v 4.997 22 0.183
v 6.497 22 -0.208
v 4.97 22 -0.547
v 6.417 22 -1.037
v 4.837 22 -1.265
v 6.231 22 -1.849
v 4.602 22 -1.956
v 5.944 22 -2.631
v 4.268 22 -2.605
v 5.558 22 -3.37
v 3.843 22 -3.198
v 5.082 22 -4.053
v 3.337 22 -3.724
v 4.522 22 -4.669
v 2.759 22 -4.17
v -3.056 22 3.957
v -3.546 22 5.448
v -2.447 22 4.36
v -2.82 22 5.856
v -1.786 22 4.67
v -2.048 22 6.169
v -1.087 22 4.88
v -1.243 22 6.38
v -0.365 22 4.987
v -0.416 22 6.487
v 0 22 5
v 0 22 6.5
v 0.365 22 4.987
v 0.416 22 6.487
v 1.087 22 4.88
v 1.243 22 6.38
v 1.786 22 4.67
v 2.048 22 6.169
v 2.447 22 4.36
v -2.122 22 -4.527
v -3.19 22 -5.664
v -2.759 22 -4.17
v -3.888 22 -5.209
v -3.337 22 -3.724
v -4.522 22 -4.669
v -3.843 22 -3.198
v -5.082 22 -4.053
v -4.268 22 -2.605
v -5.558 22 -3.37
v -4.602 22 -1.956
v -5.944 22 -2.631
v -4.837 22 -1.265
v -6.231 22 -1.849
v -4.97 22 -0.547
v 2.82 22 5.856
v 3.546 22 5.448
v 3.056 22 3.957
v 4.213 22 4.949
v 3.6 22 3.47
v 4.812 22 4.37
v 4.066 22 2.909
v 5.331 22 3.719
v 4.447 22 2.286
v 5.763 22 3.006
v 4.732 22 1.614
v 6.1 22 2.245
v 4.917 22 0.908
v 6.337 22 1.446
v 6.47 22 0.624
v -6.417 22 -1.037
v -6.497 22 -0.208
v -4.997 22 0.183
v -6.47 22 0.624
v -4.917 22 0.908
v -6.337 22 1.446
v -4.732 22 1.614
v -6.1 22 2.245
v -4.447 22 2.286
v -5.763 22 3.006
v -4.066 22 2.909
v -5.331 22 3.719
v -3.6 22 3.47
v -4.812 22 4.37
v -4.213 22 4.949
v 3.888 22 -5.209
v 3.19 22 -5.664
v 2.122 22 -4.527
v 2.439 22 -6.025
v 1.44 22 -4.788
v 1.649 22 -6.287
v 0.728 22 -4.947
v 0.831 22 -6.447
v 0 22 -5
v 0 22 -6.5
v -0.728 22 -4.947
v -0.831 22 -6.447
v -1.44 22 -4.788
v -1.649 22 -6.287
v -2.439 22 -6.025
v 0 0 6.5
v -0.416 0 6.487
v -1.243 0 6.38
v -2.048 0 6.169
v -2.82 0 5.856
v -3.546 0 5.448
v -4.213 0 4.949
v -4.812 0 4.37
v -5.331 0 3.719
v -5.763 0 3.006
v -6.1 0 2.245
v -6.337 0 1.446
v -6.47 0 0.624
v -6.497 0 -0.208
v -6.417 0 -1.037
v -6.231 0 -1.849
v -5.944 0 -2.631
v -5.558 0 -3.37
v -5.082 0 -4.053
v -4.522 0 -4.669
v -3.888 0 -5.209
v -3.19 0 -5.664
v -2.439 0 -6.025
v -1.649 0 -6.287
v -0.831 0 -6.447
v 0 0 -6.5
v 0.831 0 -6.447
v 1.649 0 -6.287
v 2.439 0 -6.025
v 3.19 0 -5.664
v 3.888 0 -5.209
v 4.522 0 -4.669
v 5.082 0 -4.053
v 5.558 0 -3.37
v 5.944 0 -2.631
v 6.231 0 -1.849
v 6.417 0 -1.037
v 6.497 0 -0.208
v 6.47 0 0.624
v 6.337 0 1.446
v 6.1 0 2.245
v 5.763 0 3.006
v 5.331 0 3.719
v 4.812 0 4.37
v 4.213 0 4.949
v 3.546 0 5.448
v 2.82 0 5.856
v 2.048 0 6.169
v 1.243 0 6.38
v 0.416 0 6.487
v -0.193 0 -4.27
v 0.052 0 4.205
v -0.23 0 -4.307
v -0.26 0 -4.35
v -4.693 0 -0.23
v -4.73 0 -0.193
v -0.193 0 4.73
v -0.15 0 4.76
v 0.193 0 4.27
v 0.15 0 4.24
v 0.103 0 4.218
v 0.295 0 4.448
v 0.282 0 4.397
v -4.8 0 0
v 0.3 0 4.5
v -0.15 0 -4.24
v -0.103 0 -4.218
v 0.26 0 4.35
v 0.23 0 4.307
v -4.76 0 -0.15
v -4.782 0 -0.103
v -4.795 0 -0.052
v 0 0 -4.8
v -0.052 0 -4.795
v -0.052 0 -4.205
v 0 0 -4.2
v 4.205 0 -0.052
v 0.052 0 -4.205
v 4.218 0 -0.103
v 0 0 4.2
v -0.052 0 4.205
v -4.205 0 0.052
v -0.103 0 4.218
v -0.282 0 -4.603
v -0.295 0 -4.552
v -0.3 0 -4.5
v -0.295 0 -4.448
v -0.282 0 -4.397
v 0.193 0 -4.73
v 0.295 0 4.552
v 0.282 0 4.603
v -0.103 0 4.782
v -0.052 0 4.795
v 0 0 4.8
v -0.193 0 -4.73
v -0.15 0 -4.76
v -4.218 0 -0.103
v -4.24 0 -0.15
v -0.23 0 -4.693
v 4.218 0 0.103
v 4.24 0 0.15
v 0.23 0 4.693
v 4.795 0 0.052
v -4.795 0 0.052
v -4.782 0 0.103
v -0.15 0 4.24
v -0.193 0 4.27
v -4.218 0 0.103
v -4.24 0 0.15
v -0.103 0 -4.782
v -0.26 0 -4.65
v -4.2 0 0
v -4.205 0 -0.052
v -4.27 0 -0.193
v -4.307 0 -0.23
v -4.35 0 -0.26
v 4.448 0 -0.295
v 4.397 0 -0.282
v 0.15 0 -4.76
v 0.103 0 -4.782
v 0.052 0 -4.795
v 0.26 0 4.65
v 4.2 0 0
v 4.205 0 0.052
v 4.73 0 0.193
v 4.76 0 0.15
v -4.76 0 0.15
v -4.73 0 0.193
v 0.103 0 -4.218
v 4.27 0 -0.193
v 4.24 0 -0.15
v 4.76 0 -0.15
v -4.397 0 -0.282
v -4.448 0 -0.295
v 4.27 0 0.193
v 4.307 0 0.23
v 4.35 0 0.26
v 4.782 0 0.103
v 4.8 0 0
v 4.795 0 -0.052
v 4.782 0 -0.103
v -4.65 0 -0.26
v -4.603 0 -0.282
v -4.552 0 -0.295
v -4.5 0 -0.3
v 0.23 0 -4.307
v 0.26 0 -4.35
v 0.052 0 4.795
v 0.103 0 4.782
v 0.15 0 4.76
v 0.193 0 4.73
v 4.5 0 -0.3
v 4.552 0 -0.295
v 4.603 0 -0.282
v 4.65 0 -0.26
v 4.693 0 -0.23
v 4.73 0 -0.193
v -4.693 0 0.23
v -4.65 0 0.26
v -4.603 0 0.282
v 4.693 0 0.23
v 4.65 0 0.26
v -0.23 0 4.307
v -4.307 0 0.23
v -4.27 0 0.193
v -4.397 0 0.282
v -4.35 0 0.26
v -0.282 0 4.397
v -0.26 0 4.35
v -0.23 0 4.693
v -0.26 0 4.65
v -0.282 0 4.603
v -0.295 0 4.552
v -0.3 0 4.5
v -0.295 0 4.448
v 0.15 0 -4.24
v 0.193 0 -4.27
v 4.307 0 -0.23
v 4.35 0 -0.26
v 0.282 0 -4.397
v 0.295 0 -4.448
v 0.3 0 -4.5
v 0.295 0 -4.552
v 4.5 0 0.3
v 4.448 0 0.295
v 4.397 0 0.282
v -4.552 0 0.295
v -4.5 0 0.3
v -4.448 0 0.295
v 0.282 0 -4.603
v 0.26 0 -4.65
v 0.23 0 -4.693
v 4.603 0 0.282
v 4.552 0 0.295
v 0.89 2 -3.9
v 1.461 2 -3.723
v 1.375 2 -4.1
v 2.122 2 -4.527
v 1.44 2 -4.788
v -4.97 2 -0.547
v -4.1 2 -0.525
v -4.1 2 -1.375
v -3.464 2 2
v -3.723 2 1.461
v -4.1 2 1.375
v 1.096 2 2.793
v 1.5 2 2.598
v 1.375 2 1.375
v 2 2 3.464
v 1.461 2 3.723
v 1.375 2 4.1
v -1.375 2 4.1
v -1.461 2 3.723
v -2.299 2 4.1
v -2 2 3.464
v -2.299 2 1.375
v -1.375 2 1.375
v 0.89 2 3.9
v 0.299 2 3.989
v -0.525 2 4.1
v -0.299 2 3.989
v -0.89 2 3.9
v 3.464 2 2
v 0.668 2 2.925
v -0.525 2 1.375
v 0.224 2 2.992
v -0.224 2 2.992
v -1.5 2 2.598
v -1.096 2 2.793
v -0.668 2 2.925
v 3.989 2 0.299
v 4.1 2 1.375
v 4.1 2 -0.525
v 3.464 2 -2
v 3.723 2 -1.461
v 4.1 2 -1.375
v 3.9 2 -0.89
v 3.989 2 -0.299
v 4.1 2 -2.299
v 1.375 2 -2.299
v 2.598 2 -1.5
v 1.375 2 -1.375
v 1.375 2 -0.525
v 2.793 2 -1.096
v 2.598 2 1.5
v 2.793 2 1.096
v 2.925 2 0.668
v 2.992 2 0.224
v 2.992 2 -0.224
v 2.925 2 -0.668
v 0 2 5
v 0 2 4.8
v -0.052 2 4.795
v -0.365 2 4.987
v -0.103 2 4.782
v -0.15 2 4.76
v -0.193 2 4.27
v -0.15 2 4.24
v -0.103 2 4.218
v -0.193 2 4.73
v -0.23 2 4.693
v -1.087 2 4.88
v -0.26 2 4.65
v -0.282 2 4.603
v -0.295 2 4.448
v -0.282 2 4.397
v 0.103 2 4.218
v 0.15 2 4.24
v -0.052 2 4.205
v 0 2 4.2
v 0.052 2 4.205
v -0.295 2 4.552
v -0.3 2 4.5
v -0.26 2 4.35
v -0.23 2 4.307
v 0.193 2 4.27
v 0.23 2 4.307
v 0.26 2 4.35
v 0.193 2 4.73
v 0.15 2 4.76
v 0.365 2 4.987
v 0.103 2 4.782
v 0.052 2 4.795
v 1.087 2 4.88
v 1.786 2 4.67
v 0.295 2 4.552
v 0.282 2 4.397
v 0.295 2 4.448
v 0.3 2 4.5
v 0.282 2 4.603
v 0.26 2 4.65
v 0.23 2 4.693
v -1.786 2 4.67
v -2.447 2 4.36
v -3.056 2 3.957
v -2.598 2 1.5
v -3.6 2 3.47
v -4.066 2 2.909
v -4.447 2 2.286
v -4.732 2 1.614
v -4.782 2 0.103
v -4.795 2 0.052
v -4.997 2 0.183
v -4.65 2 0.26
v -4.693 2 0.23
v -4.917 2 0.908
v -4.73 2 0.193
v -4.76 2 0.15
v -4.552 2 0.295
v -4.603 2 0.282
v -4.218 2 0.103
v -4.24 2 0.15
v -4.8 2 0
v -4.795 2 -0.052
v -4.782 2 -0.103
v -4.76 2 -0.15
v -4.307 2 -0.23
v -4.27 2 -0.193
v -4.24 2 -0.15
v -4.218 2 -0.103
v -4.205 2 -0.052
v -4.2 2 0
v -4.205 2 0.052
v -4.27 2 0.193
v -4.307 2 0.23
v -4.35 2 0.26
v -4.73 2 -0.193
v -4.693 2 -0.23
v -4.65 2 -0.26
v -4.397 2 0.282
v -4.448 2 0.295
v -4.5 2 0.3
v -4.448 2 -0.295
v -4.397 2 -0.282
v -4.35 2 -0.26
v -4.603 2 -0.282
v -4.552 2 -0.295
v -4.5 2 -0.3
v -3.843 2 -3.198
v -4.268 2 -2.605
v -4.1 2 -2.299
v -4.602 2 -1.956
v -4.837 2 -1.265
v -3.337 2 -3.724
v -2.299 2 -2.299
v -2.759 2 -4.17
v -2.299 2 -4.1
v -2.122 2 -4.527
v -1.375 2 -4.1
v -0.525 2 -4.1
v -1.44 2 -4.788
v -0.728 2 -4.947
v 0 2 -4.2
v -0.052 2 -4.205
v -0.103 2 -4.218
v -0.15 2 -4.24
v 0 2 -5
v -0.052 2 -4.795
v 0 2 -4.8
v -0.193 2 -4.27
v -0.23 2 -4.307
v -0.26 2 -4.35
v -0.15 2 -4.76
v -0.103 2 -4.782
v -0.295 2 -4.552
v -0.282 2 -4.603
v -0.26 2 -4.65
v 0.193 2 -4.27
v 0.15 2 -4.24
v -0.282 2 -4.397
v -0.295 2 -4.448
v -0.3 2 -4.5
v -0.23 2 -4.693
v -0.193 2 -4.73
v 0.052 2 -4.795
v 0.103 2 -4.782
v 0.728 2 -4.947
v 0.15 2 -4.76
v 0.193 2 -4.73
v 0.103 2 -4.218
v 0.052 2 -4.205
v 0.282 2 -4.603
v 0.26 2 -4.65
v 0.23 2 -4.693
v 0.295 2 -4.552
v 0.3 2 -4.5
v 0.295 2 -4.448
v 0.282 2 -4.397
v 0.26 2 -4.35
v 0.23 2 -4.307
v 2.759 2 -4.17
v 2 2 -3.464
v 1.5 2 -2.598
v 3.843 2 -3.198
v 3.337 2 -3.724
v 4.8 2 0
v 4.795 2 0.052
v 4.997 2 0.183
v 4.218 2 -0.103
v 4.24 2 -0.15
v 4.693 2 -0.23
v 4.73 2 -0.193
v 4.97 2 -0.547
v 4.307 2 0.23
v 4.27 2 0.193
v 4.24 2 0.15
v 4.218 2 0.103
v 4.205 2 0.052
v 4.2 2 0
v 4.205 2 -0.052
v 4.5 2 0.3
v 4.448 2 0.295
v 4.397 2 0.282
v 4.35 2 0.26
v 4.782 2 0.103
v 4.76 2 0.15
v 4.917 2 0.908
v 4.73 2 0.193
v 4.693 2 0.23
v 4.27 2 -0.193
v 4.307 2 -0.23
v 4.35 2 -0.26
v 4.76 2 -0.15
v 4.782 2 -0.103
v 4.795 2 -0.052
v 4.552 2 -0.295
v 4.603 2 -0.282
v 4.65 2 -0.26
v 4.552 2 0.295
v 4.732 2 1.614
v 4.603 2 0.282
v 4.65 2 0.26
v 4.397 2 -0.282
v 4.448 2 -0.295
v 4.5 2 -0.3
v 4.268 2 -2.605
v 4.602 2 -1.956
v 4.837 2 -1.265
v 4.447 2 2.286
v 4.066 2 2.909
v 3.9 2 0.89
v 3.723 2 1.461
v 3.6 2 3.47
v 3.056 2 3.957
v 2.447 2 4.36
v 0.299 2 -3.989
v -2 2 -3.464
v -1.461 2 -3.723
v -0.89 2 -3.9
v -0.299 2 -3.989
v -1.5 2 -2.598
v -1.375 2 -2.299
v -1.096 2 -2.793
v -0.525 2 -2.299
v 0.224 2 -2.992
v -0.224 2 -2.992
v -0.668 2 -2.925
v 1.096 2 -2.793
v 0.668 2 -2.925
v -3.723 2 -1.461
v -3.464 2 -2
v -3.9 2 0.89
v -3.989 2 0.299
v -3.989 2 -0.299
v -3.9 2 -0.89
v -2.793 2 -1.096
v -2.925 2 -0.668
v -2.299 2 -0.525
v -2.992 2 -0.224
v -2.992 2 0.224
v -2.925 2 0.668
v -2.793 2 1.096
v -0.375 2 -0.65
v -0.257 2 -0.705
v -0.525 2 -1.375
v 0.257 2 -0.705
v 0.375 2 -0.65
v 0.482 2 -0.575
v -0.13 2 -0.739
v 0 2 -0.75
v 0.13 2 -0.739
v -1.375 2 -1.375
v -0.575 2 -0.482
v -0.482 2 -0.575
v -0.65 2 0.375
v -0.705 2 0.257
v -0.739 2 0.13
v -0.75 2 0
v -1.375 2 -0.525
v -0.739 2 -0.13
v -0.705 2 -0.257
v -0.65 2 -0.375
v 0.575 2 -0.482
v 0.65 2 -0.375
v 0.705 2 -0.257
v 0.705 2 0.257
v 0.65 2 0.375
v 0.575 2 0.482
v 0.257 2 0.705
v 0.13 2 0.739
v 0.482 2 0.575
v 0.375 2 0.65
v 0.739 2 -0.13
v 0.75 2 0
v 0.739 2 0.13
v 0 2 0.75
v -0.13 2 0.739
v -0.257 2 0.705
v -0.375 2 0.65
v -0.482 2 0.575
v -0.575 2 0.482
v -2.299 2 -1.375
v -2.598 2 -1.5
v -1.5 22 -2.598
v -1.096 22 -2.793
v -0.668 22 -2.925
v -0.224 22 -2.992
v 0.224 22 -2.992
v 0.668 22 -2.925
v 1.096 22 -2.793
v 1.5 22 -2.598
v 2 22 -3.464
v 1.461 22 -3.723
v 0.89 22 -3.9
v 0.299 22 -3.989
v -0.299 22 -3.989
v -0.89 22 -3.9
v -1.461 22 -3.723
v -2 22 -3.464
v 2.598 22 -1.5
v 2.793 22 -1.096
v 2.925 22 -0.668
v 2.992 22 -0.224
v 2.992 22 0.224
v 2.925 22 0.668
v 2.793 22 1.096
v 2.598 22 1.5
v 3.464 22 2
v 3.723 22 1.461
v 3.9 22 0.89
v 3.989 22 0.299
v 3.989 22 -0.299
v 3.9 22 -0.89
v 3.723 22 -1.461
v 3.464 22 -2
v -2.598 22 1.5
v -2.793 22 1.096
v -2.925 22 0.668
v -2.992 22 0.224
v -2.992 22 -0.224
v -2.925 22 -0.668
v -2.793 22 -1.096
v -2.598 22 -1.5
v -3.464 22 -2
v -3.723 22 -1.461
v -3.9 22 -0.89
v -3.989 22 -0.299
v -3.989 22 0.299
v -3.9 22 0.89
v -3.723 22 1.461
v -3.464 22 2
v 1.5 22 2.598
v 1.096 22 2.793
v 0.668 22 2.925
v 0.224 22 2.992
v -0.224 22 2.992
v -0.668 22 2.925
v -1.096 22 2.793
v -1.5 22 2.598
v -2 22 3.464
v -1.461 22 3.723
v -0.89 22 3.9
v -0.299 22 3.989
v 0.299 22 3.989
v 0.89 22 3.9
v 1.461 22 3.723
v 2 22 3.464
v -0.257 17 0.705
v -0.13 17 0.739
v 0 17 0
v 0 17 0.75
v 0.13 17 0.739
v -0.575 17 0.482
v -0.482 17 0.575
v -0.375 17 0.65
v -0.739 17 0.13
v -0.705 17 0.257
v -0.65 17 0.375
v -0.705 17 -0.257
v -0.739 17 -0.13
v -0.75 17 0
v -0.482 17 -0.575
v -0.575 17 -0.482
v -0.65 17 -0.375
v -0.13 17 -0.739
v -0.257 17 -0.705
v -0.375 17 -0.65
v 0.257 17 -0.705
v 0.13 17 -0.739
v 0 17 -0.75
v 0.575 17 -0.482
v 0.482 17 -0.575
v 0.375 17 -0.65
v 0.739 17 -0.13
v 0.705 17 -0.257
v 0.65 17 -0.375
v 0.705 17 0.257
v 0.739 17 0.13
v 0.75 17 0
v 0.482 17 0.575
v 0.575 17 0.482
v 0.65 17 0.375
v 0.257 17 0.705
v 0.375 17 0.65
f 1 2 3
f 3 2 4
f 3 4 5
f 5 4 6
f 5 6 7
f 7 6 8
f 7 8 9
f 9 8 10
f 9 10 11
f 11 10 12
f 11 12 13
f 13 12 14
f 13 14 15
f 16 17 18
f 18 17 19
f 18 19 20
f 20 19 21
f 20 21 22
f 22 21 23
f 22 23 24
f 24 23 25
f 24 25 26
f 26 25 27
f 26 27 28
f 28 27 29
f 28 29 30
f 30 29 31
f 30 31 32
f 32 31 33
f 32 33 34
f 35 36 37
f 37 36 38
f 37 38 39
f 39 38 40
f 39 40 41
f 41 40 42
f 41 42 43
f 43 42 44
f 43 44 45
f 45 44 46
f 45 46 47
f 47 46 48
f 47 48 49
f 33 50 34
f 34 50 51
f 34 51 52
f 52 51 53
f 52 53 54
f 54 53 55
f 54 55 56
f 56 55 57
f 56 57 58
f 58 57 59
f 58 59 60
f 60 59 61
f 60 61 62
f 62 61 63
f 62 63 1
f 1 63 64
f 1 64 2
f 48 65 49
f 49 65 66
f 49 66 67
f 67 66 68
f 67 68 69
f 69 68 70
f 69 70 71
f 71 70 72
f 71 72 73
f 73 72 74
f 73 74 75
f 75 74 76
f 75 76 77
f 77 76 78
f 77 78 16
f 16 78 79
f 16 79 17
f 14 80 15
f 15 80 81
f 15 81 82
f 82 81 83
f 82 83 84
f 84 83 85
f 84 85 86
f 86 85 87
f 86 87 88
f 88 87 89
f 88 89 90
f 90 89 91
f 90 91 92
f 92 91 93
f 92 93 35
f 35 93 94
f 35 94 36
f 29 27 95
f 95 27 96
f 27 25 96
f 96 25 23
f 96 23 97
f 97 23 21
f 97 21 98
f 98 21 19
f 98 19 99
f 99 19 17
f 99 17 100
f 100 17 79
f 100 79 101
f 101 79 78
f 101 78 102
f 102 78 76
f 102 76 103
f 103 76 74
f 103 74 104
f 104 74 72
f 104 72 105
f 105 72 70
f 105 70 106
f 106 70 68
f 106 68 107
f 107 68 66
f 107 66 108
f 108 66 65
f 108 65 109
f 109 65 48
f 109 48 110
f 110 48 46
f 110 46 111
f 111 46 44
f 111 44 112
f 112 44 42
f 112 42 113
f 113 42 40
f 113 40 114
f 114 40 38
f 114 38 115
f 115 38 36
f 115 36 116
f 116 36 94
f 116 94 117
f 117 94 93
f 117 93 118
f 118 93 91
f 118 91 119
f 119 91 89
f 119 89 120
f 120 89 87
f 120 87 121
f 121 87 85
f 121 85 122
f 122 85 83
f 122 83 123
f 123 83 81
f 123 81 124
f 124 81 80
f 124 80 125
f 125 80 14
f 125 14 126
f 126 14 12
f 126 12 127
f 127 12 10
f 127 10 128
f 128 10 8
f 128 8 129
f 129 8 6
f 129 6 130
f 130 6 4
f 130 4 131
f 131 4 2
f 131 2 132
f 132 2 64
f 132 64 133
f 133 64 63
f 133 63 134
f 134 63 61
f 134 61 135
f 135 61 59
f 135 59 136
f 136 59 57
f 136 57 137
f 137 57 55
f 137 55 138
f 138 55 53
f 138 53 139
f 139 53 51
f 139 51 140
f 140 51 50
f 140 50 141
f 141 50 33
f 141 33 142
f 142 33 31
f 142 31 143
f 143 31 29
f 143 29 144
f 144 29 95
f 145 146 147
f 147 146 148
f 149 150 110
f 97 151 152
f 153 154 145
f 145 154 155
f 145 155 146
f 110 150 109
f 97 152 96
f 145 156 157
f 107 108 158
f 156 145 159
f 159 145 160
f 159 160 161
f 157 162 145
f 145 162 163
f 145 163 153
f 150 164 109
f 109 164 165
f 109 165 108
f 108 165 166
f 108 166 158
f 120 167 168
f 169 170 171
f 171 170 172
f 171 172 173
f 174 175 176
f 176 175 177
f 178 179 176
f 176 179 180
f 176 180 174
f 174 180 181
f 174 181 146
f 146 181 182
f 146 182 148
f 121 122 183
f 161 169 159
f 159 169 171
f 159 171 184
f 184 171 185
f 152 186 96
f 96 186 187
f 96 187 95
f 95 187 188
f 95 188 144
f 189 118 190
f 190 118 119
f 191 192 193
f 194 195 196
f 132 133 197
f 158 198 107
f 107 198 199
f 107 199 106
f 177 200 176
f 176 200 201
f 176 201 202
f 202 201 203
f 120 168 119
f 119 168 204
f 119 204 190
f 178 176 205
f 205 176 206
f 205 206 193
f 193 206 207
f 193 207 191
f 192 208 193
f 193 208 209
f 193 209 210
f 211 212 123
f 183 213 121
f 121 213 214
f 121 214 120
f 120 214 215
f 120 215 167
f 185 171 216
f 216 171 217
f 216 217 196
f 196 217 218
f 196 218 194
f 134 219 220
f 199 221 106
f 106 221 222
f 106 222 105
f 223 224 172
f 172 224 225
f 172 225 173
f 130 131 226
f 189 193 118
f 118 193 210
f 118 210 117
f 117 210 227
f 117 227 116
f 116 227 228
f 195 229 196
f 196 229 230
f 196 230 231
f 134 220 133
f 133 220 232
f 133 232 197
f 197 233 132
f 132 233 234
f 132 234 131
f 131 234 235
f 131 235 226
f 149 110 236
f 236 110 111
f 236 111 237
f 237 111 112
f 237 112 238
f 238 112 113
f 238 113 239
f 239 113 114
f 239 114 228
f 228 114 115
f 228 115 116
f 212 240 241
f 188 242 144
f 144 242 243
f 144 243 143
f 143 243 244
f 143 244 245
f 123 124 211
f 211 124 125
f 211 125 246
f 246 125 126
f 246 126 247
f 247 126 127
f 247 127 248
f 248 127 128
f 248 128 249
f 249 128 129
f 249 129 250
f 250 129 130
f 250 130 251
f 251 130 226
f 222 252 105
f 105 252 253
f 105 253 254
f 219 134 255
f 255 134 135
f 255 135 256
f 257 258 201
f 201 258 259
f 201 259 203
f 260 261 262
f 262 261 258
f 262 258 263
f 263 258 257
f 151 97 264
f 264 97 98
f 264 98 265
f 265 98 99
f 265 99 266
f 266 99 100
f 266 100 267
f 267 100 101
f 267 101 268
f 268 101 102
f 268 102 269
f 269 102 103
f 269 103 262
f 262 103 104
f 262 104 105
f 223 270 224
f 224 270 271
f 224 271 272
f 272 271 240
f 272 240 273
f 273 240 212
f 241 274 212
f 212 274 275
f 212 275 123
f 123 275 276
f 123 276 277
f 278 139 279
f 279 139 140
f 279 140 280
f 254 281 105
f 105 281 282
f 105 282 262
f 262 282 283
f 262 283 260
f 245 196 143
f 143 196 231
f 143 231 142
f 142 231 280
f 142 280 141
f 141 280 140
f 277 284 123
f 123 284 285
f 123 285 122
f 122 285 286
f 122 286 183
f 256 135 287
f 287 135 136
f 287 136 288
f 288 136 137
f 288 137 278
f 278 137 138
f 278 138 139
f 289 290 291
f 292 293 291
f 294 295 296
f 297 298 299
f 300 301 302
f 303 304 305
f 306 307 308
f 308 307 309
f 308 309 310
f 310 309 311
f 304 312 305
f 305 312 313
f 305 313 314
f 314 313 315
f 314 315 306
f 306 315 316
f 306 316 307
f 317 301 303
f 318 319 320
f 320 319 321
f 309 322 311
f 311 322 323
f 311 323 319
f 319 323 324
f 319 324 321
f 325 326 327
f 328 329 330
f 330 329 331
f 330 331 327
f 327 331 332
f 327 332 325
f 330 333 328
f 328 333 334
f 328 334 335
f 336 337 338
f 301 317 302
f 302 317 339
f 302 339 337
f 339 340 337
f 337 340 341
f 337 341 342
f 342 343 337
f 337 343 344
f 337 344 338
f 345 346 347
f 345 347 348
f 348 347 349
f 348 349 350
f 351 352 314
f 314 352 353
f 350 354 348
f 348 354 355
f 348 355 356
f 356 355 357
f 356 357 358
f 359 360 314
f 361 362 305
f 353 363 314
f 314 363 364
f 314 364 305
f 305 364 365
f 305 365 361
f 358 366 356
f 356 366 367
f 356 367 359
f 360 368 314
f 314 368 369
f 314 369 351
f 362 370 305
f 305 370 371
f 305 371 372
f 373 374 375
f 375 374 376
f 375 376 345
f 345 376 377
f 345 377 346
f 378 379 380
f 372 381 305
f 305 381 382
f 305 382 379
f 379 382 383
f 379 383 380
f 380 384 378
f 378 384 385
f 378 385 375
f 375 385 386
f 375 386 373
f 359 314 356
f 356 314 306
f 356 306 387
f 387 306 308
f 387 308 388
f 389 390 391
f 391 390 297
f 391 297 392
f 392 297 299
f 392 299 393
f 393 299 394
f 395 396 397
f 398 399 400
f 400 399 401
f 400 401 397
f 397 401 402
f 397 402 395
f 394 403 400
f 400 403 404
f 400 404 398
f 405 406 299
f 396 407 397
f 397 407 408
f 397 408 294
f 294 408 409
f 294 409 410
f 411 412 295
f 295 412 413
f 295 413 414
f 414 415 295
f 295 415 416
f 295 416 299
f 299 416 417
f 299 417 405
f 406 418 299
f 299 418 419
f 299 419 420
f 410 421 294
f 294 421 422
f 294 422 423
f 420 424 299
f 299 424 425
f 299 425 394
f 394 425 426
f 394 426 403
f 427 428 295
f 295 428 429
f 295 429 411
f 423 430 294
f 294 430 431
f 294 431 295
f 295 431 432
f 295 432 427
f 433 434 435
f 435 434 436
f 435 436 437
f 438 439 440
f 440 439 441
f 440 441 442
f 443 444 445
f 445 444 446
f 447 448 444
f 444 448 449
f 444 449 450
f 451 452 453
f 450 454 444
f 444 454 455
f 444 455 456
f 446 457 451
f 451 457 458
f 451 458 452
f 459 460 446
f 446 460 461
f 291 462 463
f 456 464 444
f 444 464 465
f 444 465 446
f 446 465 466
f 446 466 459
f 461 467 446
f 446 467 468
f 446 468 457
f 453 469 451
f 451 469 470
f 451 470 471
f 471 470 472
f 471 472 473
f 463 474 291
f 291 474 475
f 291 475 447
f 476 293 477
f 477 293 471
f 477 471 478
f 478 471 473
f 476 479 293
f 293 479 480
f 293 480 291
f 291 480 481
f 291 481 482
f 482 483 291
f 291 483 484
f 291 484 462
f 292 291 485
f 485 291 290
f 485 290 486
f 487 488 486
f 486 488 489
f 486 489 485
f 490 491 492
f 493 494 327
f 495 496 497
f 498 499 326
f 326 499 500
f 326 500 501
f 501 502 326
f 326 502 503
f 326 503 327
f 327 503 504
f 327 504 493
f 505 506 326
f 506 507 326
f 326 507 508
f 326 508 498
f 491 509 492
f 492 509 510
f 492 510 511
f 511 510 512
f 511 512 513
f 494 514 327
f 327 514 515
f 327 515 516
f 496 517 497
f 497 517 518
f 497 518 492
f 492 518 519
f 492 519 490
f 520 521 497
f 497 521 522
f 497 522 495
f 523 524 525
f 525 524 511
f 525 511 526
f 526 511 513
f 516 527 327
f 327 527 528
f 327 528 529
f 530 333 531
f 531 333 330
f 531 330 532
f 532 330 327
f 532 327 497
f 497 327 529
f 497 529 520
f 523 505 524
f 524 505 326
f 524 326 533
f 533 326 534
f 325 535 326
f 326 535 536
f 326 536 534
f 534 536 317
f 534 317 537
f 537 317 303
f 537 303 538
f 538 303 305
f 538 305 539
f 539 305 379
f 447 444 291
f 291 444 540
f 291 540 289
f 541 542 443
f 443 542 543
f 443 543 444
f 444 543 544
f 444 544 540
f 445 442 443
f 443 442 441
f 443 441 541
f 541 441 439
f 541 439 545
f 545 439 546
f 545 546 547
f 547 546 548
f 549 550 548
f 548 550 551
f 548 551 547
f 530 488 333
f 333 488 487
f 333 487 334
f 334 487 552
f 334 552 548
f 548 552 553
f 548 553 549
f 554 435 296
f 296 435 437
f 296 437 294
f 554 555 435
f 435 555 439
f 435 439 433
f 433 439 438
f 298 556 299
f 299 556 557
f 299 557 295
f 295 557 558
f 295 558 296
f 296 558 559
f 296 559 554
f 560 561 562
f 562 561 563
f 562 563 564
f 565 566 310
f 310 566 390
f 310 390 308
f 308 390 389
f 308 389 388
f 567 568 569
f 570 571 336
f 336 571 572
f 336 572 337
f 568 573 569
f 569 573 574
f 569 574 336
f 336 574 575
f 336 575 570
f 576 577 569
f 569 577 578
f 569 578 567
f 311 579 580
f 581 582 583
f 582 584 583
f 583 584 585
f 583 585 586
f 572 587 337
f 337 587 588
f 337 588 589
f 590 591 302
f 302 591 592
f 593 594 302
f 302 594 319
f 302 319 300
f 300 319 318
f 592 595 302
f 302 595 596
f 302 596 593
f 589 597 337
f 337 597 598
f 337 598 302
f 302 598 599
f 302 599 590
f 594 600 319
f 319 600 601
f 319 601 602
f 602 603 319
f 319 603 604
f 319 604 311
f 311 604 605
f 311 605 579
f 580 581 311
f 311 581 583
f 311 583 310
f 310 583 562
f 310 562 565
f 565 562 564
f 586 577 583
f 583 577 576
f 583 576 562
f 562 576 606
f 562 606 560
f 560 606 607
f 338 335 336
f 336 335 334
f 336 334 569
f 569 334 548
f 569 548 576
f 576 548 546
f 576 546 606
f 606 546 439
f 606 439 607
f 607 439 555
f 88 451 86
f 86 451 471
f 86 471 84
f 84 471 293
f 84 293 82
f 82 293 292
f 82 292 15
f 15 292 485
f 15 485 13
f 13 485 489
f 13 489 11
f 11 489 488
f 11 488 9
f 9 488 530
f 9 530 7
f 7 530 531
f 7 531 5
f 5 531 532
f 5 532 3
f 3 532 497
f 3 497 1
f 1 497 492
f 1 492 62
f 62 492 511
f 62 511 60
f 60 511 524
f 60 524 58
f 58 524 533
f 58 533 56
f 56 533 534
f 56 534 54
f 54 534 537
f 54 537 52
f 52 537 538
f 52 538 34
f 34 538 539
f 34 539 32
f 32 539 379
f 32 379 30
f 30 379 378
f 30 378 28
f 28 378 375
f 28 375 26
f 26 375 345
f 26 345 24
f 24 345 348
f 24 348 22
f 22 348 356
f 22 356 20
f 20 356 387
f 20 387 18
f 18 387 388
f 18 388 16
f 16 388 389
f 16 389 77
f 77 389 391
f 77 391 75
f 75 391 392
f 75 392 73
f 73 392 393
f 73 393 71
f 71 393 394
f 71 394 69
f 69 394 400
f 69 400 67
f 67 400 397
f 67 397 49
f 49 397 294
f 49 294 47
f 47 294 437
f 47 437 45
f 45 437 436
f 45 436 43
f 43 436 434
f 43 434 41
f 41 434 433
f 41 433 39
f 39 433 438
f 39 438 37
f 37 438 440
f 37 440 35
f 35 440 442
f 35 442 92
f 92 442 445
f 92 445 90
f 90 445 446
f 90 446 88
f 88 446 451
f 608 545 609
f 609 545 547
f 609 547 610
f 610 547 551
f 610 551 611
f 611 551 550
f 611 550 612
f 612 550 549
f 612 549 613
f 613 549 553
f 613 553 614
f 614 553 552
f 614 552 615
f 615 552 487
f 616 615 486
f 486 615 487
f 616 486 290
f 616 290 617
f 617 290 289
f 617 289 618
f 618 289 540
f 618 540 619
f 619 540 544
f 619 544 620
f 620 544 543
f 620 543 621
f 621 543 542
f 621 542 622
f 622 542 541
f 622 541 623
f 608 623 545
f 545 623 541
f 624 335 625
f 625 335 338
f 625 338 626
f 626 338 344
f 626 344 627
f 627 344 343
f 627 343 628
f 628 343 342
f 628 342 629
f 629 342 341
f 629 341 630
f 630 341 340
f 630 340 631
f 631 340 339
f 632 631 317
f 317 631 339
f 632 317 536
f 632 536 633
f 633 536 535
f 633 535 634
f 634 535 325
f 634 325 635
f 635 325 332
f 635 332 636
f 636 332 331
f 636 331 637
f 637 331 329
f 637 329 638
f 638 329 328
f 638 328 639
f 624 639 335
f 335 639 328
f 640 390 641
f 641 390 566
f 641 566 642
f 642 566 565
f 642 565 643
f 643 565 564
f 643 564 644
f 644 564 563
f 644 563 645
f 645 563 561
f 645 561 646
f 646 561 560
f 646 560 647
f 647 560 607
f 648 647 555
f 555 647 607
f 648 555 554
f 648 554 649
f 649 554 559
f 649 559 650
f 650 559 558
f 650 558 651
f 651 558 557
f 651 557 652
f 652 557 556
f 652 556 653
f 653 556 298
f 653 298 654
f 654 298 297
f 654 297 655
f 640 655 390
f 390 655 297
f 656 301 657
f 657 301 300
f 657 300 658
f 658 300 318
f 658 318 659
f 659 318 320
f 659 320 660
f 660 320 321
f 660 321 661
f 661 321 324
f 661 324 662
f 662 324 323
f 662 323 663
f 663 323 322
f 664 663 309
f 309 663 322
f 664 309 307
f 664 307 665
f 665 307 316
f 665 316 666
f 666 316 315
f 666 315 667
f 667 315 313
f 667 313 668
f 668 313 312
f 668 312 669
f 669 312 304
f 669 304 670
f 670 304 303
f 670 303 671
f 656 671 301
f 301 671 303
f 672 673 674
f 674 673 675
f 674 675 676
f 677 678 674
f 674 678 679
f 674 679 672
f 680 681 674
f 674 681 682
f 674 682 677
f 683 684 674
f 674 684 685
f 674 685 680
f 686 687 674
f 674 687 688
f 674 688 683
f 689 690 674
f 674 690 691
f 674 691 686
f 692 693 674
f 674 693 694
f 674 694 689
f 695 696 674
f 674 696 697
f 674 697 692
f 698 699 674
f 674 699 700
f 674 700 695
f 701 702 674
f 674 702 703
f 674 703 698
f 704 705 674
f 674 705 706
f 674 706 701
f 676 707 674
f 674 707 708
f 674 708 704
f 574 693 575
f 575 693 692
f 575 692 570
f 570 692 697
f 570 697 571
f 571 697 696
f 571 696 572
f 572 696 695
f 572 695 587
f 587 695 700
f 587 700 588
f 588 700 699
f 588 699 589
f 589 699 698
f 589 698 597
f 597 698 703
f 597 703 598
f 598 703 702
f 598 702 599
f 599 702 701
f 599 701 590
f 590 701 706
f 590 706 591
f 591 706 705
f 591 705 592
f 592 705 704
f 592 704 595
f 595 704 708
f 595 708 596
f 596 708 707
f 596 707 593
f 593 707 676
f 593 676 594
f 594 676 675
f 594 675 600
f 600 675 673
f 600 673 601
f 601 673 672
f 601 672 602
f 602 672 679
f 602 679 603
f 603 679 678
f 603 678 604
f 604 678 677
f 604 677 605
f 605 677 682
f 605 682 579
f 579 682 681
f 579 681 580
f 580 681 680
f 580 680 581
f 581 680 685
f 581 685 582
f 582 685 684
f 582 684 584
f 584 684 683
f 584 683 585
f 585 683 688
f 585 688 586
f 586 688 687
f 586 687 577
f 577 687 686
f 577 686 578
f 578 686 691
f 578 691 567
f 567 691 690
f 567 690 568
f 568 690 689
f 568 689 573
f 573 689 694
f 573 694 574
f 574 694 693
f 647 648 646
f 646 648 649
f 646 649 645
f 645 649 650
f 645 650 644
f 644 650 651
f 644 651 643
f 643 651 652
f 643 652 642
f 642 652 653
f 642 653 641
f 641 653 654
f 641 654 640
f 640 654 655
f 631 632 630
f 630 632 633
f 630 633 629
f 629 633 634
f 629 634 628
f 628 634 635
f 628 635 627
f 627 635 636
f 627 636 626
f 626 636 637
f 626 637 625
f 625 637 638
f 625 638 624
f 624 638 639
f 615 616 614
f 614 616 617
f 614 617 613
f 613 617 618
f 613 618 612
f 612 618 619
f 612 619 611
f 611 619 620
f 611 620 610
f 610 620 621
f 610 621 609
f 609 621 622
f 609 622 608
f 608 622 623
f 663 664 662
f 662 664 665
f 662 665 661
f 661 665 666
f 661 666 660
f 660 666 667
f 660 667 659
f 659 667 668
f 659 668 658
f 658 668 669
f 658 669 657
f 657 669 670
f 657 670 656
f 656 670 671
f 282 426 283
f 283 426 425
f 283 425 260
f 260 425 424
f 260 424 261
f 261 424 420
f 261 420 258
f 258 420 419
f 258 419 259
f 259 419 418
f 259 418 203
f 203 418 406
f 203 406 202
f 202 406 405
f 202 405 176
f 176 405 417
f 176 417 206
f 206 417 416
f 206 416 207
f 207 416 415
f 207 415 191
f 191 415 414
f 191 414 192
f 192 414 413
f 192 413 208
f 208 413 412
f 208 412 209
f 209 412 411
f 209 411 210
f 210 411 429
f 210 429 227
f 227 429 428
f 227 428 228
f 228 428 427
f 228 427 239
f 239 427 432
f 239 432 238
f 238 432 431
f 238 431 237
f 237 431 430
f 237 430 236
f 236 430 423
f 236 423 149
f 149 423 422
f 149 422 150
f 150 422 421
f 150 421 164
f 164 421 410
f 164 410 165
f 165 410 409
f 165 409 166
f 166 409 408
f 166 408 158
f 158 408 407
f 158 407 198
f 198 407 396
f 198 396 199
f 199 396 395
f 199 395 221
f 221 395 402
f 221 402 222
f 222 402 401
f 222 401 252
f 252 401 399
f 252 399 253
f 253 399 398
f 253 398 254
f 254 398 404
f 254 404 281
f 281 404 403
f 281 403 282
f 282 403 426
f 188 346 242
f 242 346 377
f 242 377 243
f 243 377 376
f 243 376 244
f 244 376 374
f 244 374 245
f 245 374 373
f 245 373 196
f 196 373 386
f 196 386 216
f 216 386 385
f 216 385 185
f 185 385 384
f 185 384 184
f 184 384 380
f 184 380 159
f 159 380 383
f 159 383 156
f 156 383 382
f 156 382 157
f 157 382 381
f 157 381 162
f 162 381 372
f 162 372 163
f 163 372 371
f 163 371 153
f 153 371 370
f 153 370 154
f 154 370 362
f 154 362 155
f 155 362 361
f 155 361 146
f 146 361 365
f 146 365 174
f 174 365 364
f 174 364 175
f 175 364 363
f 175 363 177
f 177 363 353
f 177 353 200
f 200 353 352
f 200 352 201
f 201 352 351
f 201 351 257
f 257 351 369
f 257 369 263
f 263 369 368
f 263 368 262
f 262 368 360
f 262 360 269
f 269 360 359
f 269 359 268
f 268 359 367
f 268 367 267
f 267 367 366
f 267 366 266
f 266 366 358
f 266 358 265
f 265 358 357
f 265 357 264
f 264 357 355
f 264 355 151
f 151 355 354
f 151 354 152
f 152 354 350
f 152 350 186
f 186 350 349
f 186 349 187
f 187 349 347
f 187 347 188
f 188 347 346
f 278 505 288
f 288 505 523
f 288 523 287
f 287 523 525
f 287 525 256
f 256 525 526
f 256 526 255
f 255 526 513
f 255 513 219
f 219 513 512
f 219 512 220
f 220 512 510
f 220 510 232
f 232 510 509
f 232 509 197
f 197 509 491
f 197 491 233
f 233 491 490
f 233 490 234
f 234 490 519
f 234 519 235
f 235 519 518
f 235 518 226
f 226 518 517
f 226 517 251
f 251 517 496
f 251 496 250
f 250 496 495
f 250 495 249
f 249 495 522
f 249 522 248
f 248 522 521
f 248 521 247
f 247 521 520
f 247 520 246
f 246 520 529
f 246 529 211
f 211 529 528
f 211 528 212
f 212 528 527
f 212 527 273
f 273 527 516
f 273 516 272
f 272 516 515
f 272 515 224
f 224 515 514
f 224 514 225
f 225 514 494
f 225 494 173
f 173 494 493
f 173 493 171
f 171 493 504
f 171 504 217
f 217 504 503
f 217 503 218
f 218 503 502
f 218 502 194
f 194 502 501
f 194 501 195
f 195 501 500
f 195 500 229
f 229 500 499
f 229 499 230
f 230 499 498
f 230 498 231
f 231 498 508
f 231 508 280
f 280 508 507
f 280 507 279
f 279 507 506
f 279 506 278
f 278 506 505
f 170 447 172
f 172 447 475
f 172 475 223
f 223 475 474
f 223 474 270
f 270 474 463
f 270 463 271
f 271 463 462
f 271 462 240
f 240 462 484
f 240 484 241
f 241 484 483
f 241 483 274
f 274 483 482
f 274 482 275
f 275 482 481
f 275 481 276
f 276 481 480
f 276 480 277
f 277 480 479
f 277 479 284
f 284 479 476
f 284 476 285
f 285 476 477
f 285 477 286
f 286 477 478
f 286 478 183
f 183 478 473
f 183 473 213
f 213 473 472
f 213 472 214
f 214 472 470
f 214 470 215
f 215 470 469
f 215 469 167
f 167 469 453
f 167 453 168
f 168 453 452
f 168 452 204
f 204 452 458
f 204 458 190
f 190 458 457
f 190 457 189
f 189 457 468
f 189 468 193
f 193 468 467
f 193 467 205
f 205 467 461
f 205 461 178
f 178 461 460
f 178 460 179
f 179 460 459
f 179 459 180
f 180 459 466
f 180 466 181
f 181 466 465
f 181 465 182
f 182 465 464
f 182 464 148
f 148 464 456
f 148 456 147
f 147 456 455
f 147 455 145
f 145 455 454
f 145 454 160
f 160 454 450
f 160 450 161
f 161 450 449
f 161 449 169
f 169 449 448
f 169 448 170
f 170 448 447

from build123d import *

# Parameters (mm, degrees)
SKETCH1_R           = 6.5
BOSS_EXTRUDE1_DEPTH = 22
CAVITY1_START       = 2
CAVITY1_OUTLINE_R   = 5
CAVITY1_OUTLINE_R_2 = 0.75
CAVITY1_DEPTH       = 20
CAVITY1_START_2     = 17
CAVITY1_2_OUTLINE_R = 0.75
CAVITY1_2_DEPTH     = 5
SKETCH2_R           = 0.3
CUT_EXTRUDE1_DEPTH  = 23.011360703


# Read off the part's stored shape, not the designer's step: Cavity1
with BuildPart() as part:
    # Sketch1 → Boss-Extrude1 (new body)
    with BuildSketch(Plane(origin=(0, 0, 0), x_dir=(1, 0, 0), z_dir=(0, 1, 0))):
        with Locations(Location((0, 0, 0), (0, 0, 270))):
            Circle(SKETCH1_R)
    extrude(amount=BOSS_EXTRUDE1_DEPTH)

    # Cavity1 outline → Cavity1 (cut)
    with BuildSketch(Plane(origin=(0, 0, 0), x_dir=(1, 0, 0), z_dir=(0, 1, 0)).offset(CAVITY1_START)):
        Circle(CAVITY1_OUTLINE_R)
        with BuildLine():
            ThreePointArc((-1.5, -2.598076211), (0, -3), (1.5, -2.598076211))
            Line((1.5, -2.598076211), (2, -3.464101615))
            ThreePointArc((2, -3.464101615), (0, -4), (-2, -3.464101615))
            Line((-2, -3.464101615), (-1.5, -2.598076211))
        make_face(mode=Mode.SUBTRACT)
        with BuildLine():
            ThreePointArc((-2.598076211, 1.5), (-3, 0), (-2.598076211, -1.5))
            Line((-2.598076211, -1.5), (-3.464101615, -2))
            ThreePointArc((-3.464101615, -2), (-4, 0), (-3.464101615, 2))
            Line((-3.464101615, 2), (-2.598076211, 1.5))
        make_face(mode=Mode.SUBTRACT)
        Circle(CAVITY1_OUTLINE_R_2, mode=Mode.SUBTRACT)
        with BuildLine():
            ThreePointArc((2.598076211, -1.5), (3, 0), (2.598076211, 1.5))
            Line((2.598076211, 1.5), (3.464101615, 2))
            ThreePointArc((3.464101615, 2), (4, 0), (3.464101615, -2))
            Line((3.464101615, -2), (2.598076211, -1.5))
        make_face(mode=Mode.SUBTRACT)
        with BuildLine():
            ThreePointArc((1.5, 2.598076211), (0, 3), (-1.5, 2.598076211))
            Line((-1.5, 2.598076211), (-2, 3.464101615))
            ThreePointArc((-2, 3.464101615), (0, 4), (2, 3.464101615))
            Line((2, 3.464101615), (1.5, 2.598076211))
        make_face(mode=Mode.SUBTRACT)
    extrude(amount=CAVITY1_DEPTH, mode=Mode.SUBTRACT)

    # Cavity1 2 outline → Cavity1 2 (cut)
    with BuildSketch(Plane(origin=(0, 0, 0), x_dir=(1, 0, 0), z_dir=(0, 1, 0)).offset(CAVITY1_START_2)):
        Circle(CAVITY1_2_OUTLINE_R)
    extrude(amount=CAVITY1_2_DEPTH, mode=Mode.SUBTRACT)

    # Sketch2 → Cut-Extrude1 (cut, through all)
    with BuildSketch(Plane(origin=(0, 2, 0), x_dir=(1, 0, 0), z_dir=(0, 1, 0))):
        with Locations(Location((0, 4.5, 0), (0, 0, 270))):
            Circle(SKETCH2_R)
        with Locations(Location((4.5, 0, 0), (0, 0, 270))):
            Circle(SKETCH2_R)
        with Locations(Location((0, -4.5, 0), (0, 0, 270))):
            Circle(SKETCH2_R)
        with Locations(Location((-4.5, 0, 0), (0, 0, 270))):
            Circle(SKETCH2_R)
    extrude(amount=-CUT_EXTRUDE1_DEPTH, mode=Mode.SUBTRACT)


solid = part.part
